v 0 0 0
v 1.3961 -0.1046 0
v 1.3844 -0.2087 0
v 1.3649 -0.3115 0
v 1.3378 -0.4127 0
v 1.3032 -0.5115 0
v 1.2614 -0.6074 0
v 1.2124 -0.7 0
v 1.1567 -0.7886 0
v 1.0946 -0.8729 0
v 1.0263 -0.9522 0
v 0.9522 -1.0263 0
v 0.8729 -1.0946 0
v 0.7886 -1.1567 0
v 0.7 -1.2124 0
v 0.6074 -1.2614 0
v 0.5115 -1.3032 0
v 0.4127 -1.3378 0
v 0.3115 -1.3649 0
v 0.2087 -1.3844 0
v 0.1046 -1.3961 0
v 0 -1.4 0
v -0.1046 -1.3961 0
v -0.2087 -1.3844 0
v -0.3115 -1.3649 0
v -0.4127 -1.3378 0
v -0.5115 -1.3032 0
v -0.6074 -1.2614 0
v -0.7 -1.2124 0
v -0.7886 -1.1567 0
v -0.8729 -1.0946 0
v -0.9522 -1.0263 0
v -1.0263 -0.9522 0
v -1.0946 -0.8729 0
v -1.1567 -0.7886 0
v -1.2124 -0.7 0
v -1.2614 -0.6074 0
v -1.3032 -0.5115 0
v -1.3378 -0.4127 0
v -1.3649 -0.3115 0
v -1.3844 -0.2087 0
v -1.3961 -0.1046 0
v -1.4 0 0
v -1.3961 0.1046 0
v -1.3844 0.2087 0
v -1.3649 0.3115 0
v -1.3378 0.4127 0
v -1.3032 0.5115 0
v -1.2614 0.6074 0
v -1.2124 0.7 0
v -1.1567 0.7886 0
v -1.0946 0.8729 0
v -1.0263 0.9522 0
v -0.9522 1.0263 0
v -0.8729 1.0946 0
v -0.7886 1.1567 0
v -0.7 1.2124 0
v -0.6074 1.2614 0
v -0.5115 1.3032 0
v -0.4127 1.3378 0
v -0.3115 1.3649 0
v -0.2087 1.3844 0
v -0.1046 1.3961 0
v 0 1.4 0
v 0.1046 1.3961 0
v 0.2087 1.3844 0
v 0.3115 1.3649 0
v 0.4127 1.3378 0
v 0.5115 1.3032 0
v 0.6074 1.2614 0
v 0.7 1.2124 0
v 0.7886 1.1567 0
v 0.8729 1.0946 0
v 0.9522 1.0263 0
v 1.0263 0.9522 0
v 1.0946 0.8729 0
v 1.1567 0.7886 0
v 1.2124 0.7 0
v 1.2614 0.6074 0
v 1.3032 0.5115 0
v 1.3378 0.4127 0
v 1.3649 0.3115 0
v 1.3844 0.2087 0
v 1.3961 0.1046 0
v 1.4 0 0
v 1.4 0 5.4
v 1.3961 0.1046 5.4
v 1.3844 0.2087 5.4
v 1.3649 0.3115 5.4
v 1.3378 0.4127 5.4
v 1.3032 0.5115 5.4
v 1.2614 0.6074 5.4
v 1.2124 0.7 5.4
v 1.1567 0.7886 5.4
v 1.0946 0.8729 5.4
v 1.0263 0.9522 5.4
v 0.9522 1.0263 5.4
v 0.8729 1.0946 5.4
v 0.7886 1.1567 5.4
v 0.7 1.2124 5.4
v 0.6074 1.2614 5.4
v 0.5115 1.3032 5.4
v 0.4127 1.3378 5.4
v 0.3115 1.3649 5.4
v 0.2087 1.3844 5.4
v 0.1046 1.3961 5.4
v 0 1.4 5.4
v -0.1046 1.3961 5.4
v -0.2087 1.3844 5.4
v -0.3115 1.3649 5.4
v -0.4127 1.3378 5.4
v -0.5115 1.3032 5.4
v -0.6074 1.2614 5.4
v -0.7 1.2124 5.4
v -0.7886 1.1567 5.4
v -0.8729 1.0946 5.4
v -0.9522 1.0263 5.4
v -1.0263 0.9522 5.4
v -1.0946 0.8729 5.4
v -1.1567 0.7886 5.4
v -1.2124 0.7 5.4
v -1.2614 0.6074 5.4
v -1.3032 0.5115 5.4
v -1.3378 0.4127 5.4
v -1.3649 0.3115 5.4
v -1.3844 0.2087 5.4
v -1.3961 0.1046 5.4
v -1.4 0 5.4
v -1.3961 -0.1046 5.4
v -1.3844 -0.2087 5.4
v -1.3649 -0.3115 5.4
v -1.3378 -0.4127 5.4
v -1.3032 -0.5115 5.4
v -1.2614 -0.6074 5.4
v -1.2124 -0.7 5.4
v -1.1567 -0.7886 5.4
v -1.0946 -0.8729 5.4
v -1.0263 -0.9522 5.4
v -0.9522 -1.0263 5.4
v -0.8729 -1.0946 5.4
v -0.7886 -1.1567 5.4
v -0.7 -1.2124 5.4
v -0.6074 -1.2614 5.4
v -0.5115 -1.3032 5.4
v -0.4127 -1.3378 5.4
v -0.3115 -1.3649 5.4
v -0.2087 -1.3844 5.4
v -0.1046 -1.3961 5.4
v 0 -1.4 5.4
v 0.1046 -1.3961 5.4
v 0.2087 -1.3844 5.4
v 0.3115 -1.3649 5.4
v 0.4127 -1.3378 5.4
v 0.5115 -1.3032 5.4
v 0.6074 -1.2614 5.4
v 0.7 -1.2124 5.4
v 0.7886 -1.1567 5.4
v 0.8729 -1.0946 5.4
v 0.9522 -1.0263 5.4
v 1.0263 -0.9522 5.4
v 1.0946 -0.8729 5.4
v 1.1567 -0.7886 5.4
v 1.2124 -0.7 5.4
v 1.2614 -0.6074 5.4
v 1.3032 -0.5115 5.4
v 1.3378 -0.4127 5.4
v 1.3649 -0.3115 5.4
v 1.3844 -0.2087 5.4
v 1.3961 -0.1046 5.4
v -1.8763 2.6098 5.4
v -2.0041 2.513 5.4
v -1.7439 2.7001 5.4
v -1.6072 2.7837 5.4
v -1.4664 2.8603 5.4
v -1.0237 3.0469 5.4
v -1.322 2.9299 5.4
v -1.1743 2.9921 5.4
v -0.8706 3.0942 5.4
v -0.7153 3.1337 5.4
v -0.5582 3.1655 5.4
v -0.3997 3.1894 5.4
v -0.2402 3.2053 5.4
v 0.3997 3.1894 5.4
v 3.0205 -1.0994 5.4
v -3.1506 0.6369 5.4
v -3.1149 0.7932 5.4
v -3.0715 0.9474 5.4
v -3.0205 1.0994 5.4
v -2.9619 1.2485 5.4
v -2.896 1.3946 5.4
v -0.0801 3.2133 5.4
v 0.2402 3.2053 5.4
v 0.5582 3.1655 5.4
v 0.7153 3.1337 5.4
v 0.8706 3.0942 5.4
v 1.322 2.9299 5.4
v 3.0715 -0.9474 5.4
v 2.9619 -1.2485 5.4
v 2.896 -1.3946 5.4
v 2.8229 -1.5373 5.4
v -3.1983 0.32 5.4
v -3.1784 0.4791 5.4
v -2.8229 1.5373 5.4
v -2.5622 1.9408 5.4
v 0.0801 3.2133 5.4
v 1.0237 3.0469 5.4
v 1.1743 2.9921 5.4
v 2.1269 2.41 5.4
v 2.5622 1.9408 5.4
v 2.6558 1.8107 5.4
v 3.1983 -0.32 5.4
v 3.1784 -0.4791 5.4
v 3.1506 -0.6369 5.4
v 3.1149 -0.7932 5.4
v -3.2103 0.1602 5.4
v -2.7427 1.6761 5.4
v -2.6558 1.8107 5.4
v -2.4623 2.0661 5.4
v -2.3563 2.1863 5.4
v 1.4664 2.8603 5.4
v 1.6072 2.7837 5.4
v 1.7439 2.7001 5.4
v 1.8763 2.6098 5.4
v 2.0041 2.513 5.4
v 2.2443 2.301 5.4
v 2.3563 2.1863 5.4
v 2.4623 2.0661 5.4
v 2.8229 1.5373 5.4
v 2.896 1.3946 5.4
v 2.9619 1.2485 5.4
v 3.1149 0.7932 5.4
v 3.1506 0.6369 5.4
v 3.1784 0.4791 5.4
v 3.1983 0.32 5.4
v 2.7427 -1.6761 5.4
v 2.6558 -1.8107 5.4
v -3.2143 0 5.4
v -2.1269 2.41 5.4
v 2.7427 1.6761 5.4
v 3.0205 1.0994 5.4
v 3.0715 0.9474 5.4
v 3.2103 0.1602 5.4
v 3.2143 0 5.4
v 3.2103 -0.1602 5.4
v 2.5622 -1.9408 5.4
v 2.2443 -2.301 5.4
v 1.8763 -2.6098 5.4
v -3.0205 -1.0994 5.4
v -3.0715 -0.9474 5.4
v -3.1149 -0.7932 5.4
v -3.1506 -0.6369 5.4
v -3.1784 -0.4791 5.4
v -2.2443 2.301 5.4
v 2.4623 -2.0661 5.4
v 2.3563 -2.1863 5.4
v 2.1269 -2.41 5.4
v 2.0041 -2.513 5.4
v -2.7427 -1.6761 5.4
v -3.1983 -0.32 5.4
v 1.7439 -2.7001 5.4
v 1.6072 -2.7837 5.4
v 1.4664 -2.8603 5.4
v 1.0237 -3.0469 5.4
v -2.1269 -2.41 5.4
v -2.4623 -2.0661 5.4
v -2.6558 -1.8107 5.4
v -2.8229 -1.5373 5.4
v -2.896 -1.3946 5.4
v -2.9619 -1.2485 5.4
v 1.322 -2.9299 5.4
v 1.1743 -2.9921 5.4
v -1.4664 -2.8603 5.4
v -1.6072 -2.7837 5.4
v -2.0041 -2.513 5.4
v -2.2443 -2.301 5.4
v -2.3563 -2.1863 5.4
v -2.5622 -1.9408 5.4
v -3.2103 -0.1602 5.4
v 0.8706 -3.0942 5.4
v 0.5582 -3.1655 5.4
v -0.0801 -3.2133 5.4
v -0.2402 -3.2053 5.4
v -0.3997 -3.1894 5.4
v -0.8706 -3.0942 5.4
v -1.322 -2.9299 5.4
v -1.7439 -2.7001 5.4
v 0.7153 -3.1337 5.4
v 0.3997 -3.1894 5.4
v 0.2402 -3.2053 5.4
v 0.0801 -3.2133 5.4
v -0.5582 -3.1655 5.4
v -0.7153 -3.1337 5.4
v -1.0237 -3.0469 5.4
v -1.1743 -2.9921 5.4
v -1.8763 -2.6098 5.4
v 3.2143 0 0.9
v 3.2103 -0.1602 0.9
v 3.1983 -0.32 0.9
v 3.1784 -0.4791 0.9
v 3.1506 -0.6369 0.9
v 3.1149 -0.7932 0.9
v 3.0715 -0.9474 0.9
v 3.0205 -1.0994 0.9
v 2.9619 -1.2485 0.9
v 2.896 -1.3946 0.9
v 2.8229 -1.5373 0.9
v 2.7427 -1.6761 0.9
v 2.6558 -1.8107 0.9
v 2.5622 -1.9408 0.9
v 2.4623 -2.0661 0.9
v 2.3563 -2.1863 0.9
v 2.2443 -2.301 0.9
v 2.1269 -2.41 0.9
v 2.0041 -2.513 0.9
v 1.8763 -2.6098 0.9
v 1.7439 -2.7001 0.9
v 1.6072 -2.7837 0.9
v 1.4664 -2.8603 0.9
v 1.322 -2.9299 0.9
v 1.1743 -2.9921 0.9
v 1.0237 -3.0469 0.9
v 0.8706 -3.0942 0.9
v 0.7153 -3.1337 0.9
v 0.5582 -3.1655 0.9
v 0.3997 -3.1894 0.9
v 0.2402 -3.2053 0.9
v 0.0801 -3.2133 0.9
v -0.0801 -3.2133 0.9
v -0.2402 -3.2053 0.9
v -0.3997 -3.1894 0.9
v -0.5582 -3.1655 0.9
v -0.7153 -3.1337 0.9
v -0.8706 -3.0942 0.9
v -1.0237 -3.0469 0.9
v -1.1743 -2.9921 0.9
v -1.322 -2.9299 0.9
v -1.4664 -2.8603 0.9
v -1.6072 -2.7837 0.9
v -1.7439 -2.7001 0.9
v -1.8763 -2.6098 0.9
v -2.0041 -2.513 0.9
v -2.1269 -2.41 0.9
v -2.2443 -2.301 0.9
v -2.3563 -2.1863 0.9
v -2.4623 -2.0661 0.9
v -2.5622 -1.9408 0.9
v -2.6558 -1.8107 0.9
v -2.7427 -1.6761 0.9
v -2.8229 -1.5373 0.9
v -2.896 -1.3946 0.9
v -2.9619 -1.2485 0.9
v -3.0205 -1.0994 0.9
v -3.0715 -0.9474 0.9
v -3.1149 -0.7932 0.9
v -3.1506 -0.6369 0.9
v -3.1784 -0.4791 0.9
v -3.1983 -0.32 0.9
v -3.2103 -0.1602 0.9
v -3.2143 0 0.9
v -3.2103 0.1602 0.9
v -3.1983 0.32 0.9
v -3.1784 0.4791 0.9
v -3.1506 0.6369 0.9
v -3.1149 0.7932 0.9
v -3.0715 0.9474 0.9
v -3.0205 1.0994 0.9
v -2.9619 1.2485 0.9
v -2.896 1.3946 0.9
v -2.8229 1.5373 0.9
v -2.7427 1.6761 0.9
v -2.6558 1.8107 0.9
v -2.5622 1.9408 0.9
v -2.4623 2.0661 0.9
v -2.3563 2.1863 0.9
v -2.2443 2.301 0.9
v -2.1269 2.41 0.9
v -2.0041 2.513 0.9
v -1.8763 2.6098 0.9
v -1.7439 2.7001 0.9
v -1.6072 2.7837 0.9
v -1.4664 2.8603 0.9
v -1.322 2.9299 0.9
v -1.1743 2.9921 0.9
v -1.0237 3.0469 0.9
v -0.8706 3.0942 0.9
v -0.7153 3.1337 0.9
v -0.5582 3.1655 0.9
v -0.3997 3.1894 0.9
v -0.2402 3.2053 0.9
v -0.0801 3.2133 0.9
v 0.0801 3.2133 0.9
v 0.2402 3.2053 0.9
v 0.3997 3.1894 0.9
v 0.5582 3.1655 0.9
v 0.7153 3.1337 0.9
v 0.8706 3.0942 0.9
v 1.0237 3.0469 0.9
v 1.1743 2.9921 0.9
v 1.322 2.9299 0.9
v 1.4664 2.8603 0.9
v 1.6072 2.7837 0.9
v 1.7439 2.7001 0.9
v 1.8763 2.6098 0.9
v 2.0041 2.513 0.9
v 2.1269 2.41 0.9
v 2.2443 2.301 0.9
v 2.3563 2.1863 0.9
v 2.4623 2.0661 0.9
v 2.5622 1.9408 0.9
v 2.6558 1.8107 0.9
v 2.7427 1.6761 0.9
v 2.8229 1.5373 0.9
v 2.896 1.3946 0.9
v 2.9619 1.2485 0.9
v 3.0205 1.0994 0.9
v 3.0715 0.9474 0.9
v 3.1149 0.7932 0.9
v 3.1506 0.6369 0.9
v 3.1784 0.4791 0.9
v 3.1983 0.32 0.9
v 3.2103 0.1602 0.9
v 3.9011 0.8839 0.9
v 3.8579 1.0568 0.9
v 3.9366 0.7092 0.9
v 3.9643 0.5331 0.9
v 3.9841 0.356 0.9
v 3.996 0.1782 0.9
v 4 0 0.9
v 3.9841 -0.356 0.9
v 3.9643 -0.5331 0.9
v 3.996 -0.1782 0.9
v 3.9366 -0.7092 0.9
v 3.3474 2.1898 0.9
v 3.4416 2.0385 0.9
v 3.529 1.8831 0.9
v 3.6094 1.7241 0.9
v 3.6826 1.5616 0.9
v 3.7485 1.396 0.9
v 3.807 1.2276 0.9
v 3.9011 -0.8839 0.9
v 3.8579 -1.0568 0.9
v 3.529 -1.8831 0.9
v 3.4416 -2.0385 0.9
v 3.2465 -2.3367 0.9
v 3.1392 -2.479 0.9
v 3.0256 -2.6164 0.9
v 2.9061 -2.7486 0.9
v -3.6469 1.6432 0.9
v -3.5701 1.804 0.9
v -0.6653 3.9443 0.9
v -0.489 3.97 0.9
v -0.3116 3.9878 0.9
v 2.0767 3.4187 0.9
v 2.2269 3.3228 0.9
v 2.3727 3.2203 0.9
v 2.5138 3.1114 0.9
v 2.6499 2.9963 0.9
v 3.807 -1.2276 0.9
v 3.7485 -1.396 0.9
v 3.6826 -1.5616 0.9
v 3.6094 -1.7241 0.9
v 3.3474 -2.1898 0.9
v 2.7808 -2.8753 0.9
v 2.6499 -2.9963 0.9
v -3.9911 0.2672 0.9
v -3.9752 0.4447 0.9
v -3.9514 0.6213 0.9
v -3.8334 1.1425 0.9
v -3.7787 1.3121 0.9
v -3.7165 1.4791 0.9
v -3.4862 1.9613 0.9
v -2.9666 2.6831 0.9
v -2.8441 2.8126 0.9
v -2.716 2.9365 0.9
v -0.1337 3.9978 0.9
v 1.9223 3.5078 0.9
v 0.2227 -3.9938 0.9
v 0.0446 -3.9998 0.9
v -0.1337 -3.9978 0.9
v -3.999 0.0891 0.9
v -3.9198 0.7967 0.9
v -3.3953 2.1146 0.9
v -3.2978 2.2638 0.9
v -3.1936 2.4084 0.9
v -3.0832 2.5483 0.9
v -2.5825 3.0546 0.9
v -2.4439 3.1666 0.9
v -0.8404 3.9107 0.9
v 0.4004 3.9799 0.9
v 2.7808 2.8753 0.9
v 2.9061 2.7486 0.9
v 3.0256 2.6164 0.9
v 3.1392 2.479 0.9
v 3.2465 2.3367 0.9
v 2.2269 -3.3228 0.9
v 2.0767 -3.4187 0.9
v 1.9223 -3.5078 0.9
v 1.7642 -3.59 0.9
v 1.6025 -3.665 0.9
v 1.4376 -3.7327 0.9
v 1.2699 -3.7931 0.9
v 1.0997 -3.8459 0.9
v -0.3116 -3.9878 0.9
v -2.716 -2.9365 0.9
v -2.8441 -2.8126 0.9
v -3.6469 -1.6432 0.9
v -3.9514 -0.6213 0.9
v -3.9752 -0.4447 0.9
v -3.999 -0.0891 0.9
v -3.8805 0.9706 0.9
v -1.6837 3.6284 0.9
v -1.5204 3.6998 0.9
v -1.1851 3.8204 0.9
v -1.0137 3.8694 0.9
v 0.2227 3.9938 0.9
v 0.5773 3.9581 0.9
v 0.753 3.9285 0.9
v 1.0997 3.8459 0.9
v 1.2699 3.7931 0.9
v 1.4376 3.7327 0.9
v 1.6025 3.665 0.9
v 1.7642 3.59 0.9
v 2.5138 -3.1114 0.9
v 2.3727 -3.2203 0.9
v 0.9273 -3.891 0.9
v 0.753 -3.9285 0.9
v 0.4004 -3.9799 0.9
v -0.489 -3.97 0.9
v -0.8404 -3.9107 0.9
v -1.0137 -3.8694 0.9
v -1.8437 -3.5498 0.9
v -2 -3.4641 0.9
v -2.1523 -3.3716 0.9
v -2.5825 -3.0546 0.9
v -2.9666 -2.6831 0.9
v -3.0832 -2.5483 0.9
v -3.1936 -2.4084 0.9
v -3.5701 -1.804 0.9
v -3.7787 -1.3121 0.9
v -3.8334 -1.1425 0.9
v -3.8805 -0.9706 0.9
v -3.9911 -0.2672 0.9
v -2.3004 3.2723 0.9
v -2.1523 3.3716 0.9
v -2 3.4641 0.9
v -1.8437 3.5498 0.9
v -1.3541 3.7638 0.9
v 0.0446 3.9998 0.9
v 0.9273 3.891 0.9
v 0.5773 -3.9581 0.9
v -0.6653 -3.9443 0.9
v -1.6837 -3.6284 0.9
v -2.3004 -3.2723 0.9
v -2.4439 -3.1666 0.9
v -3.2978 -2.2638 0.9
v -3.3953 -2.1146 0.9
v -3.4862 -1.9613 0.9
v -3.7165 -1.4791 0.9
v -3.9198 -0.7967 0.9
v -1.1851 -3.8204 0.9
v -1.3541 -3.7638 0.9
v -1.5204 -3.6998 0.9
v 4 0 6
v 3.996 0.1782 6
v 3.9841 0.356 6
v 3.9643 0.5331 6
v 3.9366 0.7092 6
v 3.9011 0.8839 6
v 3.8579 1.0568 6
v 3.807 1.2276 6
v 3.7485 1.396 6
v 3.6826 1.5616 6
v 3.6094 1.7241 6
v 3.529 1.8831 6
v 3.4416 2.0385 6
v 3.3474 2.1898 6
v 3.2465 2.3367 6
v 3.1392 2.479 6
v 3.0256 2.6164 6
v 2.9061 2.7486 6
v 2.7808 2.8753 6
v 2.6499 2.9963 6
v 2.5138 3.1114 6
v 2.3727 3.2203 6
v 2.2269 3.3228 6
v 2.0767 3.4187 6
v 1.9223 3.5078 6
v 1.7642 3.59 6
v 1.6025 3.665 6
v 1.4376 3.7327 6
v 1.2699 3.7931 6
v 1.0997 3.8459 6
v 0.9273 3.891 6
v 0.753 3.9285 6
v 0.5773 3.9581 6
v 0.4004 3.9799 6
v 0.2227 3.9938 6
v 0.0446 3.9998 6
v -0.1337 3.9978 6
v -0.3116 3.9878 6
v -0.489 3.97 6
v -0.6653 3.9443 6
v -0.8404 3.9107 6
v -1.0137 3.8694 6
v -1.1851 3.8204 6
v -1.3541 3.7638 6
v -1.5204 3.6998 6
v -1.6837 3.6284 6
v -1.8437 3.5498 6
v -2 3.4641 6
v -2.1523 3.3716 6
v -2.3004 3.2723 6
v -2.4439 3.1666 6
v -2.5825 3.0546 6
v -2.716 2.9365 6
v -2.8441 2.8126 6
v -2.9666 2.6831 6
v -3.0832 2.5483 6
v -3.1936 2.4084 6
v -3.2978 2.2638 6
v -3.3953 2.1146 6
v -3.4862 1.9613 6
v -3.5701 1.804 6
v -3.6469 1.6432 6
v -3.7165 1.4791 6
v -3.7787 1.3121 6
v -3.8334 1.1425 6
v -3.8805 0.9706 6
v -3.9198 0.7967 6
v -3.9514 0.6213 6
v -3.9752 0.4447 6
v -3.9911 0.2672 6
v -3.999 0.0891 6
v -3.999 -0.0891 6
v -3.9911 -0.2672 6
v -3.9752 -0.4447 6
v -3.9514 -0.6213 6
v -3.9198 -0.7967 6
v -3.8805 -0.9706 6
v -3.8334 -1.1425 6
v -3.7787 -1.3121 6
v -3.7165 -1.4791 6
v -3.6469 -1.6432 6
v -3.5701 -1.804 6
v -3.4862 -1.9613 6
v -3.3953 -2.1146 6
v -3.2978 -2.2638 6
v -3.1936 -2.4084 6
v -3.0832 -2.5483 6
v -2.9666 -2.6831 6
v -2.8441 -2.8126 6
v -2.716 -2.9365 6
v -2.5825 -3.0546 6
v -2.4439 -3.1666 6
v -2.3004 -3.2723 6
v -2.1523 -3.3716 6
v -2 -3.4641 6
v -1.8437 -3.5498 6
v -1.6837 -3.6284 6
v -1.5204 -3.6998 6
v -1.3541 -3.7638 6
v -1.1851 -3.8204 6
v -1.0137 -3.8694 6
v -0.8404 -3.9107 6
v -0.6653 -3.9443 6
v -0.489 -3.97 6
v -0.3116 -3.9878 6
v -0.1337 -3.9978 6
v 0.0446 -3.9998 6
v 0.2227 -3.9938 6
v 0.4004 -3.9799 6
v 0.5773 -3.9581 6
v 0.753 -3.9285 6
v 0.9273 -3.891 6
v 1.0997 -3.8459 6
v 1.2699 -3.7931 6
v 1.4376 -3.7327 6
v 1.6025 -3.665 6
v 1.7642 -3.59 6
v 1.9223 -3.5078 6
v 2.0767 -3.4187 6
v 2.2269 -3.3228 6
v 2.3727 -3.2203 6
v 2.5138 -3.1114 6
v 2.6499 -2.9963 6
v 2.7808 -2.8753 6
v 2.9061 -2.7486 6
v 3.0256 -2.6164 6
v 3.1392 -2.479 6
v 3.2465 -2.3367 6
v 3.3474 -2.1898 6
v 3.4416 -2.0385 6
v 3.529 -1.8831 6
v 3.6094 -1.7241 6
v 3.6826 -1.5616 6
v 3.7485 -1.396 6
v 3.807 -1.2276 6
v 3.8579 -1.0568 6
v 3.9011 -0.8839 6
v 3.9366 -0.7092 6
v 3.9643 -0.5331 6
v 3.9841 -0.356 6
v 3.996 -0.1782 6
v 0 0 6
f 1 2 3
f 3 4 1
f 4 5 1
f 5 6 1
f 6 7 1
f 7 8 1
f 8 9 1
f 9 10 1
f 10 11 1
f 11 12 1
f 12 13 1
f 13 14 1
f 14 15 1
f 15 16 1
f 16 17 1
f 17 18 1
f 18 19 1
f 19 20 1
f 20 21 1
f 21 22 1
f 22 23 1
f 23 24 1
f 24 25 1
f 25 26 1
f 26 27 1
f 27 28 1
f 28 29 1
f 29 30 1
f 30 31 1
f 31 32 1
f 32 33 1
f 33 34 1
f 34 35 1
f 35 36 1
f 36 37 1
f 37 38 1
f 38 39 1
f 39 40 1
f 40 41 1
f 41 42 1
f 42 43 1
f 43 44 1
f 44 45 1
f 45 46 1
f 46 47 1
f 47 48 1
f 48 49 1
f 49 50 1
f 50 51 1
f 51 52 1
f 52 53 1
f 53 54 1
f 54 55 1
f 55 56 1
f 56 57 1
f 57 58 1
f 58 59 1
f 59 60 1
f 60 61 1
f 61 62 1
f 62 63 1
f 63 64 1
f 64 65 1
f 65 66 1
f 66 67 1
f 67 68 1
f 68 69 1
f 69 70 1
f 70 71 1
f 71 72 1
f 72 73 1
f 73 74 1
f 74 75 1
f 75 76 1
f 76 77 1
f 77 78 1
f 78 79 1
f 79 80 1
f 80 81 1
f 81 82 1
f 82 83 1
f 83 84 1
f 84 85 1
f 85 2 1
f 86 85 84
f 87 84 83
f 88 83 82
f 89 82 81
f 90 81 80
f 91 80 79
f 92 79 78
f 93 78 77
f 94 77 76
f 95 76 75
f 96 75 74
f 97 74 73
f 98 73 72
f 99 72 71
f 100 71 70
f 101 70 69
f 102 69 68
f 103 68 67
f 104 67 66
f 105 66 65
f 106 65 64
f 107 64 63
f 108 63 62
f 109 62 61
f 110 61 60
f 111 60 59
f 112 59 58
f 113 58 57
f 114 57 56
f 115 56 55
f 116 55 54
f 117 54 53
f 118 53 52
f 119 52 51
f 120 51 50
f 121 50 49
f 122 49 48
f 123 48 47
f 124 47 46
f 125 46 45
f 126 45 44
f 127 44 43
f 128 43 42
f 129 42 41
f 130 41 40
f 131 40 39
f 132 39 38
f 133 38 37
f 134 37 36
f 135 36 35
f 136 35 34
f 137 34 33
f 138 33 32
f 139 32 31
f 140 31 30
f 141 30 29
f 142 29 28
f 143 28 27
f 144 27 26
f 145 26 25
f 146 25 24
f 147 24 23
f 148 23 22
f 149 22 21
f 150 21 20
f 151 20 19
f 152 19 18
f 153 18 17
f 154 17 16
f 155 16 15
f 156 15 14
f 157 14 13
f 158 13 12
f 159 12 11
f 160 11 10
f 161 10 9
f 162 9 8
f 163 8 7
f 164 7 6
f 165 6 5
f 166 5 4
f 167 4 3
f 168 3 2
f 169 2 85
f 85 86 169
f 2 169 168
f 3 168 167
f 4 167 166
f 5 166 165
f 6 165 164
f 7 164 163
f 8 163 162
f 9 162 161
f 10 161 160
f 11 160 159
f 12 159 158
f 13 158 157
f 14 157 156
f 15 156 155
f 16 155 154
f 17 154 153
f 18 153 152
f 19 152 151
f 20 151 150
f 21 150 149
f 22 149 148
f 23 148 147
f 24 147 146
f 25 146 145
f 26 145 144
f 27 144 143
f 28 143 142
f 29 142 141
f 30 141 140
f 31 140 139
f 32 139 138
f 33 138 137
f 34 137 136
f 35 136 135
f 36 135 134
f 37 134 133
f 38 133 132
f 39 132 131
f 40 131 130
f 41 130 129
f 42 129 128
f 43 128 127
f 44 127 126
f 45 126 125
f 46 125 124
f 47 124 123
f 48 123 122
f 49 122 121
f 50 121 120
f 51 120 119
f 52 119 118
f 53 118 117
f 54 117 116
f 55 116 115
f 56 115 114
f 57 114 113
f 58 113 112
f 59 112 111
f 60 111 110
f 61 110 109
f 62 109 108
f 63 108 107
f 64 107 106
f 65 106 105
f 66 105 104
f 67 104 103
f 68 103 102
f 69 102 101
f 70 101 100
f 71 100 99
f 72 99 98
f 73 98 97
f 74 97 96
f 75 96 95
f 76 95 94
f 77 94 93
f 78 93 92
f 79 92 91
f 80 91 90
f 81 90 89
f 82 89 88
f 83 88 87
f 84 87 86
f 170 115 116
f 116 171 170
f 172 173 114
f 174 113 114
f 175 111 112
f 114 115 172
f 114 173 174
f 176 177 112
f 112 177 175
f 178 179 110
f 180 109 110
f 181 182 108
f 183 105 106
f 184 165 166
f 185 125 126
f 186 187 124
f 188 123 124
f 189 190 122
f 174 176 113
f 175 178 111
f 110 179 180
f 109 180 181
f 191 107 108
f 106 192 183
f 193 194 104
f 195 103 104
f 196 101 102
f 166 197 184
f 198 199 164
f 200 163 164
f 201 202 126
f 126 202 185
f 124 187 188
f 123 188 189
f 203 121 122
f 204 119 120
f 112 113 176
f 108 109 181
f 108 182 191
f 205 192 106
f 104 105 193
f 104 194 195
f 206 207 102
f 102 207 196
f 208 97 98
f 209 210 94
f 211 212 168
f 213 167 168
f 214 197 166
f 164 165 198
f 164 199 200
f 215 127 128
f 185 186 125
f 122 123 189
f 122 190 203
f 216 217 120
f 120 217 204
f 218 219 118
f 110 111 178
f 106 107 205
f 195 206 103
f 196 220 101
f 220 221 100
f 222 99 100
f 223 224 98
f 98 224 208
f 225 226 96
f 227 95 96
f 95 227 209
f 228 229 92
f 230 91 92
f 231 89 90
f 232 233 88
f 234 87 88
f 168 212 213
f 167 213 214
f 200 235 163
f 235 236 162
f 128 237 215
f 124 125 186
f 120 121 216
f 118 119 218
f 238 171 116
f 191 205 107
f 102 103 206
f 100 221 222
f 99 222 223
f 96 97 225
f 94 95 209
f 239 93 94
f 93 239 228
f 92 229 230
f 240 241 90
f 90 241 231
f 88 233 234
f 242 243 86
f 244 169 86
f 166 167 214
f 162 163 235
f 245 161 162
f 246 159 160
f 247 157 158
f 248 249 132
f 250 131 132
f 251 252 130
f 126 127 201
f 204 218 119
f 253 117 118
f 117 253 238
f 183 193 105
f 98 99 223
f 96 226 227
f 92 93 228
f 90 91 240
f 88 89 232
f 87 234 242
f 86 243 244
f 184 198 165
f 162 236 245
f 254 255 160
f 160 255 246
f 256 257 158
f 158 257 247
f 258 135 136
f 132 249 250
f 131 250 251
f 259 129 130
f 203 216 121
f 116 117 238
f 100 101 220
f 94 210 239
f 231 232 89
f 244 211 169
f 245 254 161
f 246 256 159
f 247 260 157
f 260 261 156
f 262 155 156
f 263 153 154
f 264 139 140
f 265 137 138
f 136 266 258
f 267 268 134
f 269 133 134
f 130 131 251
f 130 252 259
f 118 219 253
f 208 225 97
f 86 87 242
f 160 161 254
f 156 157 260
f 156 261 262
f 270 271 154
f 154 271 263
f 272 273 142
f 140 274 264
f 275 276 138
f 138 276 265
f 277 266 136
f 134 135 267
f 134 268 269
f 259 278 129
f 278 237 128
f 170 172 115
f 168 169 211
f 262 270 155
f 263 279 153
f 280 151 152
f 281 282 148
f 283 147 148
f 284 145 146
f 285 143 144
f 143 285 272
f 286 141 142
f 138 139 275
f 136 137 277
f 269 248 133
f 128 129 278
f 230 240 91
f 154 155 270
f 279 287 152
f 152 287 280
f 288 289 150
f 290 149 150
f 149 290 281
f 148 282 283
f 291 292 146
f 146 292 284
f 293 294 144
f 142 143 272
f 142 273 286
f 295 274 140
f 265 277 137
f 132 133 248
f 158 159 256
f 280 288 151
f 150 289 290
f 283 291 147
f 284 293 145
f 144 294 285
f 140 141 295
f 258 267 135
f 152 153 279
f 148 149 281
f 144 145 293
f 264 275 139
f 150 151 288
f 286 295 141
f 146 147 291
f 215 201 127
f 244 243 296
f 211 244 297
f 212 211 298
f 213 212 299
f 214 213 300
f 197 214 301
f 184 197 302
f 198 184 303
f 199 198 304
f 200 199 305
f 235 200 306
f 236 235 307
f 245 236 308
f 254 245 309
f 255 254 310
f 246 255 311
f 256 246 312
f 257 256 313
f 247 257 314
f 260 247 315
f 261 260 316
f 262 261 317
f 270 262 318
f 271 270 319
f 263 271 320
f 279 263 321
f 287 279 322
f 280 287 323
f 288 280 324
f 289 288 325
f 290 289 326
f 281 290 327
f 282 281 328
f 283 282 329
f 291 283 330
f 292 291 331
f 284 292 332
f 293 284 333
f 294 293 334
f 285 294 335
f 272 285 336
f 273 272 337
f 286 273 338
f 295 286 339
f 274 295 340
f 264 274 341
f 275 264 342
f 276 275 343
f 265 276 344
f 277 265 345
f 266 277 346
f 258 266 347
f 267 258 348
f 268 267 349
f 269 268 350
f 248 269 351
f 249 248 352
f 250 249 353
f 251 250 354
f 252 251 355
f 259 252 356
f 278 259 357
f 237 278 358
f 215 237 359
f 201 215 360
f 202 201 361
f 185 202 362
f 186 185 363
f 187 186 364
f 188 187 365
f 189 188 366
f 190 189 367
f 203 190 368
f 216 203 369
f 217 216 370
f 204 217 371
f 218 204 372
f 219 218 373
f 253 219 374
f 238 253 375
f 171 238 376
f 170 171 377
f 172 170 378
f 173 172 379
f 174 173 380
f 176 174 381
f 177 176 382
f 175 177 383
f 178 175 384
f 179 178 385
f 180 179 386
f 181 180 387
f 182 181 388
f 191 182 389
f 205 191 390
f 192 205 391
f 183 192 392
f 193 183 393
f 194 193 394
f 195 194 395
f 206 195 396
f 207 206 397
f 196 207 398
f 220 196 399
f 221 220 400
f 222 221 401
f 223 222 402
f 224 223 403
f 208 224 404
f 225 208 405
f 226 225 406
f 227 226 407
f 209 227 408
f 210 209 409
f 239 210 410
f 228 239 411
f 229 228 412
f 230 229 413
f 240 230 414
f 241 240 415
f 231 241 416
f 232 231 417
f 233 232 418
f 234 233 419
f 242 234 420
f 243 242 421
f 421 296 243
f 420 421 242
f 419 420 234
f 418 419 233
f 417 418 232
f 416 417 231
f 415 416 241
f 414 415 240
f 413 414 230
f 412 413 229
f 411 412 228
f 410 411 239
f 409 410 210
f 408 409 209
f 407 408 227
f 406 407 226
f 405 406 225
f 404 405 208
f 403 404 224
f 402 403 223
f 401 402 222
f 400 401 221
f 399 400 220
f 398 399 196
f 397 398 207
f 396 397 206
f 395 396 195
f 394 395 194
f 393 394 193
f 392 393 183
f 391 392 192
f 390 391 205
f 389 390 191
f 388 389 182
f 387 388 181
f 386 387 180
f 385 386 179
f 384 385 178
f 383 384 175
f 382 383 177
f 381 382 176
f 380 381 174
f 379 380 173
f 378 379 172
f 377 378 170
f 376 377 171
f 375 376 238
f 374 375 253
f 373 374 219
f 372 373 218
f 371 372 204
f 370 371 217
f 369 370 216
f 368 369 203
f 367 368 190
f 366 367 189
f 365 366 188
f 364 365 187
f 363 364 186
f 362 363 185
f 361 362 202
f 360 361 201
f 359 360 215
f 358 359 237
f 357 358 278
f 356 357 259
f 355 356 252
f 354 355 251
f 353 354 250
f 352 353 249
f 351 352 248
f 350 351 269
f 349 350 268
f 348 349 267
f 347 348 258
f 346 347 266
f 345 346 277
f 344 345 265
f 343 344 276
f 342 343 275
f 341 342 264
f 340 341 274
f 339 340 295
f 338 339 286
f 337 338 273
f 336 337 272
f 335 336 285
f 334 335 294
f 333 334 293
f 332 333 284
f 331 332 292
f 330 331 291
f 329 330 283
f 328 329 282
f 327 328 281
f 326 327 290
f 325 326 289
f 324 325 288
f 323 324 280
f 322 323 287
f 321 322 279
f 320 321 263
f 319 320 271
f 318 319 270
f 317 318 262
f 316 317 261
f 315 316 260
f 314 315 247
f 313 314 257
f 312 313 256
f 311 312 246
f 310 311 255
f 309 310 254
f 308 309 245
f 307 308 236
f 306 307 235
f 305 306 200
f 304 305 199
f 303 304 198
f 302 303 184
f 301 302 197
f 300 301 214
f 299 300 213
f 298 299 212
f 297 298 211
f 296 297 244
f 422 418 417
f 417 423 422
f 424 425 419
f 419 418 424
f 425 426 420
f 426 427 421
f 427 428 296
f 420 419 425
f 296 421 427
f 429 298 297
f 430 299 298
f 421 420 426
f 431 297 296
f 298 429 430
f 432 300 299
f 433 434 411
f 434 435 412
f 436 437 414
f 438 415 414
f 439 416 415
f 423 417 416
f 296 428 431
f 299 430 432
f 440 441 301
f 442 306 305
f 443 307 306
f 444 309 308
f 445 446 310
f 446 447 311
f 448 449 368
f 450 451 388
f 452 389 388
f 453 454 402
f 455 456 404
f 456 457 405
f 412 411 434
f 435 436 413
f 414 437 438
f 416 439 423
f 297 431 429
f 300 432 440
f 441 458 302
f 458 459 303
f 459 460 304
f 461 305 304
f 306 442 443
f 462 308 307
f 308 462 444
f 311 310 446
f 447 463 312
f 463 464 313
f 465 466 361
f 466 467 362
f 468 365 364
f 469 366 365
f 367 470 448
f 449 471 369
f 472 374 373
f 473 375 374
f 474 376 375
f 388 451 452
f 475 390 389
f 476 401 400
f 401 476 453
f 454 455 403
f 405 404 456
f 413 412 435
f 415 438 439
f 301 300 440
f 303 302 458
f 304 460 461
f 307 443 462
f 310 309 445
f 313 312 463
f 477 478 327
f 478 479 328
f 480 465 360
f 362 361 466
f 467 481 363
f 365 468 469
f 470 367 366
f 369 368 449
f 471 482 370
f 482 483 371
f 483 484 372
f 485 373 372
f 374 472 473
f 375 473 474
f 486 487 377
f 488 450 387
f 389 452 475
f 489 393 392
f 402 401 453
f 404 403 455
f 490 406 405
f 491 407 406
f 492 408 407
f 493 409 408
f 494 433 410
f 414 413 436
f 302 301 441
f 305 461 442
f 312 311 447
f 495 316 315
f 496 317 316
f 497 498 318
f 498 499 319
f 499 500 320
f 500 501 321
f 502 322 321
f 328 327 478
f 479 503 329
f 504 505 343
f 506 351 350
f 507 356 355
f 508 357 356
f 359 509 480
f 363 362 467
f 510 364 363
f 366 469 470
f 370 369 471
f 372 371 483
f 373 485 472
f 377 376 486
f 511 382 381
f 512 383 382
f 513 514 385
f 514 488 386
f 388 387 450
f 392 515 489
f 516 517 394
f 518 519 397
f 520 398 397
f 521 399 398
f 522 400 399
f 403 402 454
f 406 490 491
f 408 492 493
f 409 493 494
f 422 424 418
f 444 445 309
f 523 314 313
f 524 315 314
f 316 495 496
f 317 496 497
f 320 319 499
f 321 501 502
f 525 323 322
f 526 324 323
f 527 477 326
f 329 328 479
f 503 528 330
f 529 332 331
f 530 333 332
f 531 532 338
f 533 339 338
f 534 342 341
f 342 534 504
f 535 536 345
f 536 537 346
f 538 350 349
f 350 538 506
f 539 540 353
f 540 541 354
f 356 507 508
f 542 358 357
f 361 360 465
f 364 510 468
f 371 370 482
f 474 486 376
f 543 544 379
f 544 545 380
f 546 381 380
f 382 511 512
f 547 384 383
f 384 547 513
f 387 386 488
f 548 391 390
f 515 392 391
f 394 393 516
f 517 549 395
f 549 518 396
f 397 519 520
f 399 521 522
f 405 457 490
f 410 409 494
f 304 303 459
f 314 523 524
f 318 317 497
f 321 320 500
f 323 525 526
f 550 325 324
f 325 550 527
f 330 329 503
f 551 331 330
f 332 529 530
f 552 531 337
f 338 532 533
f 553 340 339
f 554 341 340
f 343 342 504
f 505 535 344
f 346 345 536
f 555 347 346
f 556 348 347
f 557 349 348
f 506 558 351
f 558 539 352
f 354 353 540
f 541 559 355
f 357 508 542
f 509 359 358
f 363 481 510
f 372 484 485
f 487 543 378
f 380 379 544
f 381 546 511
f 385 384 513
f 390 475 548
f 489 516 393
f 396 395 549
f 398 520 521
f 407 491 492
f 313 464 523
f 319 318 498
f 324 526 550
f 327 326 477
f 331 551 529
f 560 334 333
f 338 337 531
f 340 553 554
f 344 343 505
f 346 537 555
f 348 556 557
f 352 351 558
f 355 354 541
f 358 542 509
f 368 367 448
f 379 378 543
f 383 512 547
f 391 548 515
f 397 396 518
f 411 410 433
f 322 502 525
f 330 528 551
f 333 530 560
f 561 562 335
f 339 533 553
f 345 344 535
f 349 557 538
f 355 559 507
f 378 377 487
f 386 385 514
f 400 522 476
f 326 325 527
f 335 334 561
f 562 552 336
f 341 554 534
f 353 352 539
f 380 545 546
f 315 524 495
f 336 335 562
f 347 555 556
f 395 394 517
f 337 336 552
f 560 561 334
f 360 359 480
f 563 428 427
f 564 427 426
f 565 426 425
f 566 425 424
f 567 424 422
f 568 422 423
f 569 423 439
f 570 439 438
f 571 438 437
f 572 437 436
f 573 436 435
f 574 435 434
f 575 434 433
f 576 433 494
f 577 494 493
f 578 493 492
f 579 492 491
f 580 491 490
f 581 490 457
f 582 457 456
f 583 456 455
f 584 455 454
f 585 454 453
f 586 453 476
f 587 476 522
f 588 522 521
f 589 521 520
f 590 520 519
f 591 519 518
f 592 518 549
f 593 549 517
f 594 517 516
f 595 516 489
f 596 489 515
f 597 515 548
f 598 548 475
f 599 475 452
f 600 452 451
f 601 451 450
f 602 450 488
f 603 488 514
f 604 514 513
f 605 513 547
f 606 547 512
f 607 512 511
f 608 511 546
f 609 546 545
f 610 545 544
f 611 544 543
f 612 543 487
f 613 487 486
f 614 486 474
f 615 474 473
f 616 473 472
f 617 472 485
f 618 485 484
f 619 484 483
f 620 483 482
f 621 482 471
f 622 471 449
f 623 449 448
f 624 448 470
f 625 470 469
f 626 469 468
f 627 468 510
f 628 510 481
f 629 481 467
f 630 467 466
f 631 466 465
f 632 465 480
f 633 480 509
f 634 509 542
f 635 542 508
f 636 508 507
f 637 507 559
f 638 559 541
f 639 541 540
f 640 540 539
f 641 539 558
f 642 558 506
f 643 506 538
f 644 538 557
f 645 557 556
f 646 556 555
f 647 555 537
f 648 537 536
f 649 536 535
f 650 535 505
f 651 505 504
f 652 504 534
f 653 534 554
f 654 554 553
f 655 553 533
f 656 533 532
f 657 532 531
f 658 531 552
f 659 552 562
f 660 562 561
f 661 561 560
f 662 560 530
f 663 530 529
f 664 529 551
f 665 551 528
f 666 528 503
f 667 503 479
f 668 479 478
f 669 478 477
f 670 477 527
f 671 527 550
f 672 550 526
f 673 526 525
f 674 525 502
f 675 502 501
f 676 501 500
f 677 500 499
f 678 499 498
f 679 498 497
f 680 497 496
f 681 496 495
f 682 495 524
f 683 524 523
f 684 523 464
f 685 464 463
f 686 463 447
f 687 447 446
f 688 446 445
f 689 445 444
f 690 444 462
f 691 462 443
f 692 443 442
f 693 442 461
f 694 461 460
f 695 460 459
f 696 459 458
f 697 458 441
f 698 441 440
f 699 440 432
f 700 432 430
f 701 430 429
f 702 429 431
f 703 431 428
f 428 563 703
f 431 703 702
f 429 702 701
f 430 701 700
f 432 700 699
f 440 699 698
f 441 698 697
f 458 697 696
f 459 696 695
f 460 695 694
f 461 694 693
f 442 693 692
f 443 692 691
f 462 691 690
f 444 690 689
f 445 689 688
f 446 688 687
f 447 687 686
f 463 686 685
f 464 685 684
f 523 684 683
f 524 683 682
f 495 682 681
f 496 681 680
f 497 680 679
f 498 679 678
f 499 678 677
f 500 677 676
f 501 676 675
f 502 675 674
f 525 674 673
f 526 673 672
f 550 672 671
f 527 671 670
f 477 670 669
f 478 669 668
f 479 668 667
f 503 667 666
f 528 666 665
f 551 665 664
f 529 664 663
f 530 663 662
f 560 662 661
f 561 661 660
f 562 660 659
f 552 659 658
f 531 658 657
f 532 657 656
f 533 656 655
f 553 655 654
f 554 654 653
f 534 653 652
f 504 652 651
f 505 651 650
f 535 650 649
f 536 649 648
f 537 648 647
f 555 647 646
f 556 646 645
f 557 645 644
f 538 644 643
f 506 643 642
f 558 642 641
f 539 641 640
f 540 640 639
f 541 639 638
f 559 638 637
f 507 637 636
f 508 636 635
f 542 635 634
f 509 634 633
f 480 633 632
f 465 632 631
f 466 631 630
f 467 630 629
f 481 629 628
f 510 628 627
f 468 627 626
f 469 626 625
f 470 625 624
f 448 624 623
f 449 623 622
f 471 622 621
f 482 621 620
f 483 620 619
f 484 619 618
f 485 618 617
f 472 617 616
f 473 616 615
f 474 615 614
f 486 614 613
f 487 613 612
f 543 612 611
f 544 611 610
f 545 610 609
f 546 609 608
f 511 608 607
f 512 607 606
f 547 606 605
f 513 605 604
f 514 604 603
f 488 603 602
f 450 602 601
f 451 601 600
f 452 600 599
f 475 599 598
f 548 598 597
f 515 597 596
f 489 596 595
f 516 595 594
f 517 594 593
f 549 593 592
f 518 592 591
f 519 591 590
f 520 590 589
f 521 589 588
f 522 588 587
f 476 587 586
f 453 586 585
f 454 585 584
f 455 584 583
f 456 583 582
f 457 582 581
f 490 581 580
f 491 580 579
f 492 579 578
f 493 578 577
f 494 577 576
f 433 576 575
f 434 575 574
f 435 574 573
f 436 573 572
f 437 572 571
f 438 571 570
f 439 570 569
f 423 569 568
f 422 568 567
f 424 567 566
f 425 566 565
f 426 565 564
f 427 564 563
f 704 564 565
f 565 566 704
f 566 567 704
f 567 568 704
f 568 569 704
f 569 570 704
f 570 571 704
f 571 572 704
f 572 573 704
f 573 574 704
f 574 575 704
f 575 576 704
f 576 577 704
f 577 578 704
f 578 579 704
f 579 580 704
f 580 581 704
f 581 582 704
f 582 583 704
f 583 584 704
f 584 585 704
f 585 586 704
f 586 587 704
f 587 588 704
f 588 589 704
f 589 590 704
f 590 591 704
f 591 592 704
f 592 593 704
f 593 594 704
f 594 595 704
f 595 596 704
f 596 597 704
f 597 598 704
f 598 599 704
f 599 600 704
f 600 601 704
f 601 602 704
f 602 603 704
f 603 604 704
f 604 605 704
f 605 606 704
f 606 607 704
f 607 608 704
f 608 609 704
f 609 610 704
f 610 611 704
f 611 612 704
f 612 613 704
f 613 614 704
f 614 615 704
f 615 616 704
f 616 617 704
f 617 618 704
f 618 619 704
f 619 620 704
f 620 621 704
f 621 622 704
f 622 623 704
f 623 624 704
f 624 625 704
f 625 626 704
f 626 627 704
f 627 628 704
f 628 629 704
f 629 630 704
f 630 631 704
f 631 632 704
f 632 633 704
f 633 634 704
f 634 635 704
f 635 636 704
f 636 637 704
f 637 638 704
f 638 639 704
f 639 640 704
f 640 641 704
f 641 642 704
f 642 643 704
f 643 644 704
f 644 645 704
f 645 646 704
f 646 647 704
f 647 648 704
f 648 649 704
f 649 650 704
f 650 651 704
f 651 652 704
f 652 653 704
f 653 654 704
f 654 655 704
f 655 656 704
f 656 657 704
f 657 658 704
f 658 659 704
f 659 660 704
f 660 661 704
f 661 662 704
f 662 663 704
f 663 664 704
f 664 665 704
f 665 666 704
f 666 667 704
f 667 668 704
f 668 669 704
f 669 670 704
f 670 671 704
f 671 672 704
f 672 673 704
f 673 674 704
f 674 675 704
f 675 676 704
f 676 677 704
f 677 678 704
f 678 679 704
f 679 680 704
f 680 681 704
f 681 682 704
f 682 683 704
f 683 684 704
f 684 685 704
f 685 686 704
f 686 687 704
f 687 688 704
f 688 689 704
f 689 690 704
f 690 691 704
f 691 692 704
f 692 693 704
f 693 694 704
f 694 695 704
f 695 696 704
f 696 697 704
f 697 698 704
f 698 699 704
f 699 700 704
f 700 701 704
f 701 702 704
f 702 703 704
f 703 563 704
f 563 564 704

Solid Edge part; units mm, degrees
sketch "Sketch1" plane through (0, 0, 0) normal (1, 0, 0) x (0, 1, 0)
  line L0 (4, 5.4) -> (4, 0.9)
  line L1 (4, 0.9) -> (3.2143, 0.9)
  line L2 (3.2143, 0.9) -> (3.2143, 5.4)
  line L3 (3.2143, 5.4) -> (1.4, 5.4)
  line L4 (1.4, 5.4) -> (1.4, 0)
  line L5 (1.4, 0) -> (0, 0)
  line L6 (0, 0) -> (0, 6)
  line L7 (0, 6) -> (1.4, 6)
  line L8 (1.4, 6) -> (4, 6)
  line L9 (4, 6) -> (4, 5.4)
  dimension "D1" = 29.1354
  dimension "D2" = 0.7857
  dimension "D3" = 2.6
  dimension "D4" = 4.5
  dimension "D5" = 1.8143
  dimension "D6" = 5.4
  dimension "D7" = 1.4
  dimension "D8" = 6
revolve "RevolvedProtrusion1" add sketch "Sketch1" angle 360 about axis through (0, 0, 0) along (0, 0, 1)
